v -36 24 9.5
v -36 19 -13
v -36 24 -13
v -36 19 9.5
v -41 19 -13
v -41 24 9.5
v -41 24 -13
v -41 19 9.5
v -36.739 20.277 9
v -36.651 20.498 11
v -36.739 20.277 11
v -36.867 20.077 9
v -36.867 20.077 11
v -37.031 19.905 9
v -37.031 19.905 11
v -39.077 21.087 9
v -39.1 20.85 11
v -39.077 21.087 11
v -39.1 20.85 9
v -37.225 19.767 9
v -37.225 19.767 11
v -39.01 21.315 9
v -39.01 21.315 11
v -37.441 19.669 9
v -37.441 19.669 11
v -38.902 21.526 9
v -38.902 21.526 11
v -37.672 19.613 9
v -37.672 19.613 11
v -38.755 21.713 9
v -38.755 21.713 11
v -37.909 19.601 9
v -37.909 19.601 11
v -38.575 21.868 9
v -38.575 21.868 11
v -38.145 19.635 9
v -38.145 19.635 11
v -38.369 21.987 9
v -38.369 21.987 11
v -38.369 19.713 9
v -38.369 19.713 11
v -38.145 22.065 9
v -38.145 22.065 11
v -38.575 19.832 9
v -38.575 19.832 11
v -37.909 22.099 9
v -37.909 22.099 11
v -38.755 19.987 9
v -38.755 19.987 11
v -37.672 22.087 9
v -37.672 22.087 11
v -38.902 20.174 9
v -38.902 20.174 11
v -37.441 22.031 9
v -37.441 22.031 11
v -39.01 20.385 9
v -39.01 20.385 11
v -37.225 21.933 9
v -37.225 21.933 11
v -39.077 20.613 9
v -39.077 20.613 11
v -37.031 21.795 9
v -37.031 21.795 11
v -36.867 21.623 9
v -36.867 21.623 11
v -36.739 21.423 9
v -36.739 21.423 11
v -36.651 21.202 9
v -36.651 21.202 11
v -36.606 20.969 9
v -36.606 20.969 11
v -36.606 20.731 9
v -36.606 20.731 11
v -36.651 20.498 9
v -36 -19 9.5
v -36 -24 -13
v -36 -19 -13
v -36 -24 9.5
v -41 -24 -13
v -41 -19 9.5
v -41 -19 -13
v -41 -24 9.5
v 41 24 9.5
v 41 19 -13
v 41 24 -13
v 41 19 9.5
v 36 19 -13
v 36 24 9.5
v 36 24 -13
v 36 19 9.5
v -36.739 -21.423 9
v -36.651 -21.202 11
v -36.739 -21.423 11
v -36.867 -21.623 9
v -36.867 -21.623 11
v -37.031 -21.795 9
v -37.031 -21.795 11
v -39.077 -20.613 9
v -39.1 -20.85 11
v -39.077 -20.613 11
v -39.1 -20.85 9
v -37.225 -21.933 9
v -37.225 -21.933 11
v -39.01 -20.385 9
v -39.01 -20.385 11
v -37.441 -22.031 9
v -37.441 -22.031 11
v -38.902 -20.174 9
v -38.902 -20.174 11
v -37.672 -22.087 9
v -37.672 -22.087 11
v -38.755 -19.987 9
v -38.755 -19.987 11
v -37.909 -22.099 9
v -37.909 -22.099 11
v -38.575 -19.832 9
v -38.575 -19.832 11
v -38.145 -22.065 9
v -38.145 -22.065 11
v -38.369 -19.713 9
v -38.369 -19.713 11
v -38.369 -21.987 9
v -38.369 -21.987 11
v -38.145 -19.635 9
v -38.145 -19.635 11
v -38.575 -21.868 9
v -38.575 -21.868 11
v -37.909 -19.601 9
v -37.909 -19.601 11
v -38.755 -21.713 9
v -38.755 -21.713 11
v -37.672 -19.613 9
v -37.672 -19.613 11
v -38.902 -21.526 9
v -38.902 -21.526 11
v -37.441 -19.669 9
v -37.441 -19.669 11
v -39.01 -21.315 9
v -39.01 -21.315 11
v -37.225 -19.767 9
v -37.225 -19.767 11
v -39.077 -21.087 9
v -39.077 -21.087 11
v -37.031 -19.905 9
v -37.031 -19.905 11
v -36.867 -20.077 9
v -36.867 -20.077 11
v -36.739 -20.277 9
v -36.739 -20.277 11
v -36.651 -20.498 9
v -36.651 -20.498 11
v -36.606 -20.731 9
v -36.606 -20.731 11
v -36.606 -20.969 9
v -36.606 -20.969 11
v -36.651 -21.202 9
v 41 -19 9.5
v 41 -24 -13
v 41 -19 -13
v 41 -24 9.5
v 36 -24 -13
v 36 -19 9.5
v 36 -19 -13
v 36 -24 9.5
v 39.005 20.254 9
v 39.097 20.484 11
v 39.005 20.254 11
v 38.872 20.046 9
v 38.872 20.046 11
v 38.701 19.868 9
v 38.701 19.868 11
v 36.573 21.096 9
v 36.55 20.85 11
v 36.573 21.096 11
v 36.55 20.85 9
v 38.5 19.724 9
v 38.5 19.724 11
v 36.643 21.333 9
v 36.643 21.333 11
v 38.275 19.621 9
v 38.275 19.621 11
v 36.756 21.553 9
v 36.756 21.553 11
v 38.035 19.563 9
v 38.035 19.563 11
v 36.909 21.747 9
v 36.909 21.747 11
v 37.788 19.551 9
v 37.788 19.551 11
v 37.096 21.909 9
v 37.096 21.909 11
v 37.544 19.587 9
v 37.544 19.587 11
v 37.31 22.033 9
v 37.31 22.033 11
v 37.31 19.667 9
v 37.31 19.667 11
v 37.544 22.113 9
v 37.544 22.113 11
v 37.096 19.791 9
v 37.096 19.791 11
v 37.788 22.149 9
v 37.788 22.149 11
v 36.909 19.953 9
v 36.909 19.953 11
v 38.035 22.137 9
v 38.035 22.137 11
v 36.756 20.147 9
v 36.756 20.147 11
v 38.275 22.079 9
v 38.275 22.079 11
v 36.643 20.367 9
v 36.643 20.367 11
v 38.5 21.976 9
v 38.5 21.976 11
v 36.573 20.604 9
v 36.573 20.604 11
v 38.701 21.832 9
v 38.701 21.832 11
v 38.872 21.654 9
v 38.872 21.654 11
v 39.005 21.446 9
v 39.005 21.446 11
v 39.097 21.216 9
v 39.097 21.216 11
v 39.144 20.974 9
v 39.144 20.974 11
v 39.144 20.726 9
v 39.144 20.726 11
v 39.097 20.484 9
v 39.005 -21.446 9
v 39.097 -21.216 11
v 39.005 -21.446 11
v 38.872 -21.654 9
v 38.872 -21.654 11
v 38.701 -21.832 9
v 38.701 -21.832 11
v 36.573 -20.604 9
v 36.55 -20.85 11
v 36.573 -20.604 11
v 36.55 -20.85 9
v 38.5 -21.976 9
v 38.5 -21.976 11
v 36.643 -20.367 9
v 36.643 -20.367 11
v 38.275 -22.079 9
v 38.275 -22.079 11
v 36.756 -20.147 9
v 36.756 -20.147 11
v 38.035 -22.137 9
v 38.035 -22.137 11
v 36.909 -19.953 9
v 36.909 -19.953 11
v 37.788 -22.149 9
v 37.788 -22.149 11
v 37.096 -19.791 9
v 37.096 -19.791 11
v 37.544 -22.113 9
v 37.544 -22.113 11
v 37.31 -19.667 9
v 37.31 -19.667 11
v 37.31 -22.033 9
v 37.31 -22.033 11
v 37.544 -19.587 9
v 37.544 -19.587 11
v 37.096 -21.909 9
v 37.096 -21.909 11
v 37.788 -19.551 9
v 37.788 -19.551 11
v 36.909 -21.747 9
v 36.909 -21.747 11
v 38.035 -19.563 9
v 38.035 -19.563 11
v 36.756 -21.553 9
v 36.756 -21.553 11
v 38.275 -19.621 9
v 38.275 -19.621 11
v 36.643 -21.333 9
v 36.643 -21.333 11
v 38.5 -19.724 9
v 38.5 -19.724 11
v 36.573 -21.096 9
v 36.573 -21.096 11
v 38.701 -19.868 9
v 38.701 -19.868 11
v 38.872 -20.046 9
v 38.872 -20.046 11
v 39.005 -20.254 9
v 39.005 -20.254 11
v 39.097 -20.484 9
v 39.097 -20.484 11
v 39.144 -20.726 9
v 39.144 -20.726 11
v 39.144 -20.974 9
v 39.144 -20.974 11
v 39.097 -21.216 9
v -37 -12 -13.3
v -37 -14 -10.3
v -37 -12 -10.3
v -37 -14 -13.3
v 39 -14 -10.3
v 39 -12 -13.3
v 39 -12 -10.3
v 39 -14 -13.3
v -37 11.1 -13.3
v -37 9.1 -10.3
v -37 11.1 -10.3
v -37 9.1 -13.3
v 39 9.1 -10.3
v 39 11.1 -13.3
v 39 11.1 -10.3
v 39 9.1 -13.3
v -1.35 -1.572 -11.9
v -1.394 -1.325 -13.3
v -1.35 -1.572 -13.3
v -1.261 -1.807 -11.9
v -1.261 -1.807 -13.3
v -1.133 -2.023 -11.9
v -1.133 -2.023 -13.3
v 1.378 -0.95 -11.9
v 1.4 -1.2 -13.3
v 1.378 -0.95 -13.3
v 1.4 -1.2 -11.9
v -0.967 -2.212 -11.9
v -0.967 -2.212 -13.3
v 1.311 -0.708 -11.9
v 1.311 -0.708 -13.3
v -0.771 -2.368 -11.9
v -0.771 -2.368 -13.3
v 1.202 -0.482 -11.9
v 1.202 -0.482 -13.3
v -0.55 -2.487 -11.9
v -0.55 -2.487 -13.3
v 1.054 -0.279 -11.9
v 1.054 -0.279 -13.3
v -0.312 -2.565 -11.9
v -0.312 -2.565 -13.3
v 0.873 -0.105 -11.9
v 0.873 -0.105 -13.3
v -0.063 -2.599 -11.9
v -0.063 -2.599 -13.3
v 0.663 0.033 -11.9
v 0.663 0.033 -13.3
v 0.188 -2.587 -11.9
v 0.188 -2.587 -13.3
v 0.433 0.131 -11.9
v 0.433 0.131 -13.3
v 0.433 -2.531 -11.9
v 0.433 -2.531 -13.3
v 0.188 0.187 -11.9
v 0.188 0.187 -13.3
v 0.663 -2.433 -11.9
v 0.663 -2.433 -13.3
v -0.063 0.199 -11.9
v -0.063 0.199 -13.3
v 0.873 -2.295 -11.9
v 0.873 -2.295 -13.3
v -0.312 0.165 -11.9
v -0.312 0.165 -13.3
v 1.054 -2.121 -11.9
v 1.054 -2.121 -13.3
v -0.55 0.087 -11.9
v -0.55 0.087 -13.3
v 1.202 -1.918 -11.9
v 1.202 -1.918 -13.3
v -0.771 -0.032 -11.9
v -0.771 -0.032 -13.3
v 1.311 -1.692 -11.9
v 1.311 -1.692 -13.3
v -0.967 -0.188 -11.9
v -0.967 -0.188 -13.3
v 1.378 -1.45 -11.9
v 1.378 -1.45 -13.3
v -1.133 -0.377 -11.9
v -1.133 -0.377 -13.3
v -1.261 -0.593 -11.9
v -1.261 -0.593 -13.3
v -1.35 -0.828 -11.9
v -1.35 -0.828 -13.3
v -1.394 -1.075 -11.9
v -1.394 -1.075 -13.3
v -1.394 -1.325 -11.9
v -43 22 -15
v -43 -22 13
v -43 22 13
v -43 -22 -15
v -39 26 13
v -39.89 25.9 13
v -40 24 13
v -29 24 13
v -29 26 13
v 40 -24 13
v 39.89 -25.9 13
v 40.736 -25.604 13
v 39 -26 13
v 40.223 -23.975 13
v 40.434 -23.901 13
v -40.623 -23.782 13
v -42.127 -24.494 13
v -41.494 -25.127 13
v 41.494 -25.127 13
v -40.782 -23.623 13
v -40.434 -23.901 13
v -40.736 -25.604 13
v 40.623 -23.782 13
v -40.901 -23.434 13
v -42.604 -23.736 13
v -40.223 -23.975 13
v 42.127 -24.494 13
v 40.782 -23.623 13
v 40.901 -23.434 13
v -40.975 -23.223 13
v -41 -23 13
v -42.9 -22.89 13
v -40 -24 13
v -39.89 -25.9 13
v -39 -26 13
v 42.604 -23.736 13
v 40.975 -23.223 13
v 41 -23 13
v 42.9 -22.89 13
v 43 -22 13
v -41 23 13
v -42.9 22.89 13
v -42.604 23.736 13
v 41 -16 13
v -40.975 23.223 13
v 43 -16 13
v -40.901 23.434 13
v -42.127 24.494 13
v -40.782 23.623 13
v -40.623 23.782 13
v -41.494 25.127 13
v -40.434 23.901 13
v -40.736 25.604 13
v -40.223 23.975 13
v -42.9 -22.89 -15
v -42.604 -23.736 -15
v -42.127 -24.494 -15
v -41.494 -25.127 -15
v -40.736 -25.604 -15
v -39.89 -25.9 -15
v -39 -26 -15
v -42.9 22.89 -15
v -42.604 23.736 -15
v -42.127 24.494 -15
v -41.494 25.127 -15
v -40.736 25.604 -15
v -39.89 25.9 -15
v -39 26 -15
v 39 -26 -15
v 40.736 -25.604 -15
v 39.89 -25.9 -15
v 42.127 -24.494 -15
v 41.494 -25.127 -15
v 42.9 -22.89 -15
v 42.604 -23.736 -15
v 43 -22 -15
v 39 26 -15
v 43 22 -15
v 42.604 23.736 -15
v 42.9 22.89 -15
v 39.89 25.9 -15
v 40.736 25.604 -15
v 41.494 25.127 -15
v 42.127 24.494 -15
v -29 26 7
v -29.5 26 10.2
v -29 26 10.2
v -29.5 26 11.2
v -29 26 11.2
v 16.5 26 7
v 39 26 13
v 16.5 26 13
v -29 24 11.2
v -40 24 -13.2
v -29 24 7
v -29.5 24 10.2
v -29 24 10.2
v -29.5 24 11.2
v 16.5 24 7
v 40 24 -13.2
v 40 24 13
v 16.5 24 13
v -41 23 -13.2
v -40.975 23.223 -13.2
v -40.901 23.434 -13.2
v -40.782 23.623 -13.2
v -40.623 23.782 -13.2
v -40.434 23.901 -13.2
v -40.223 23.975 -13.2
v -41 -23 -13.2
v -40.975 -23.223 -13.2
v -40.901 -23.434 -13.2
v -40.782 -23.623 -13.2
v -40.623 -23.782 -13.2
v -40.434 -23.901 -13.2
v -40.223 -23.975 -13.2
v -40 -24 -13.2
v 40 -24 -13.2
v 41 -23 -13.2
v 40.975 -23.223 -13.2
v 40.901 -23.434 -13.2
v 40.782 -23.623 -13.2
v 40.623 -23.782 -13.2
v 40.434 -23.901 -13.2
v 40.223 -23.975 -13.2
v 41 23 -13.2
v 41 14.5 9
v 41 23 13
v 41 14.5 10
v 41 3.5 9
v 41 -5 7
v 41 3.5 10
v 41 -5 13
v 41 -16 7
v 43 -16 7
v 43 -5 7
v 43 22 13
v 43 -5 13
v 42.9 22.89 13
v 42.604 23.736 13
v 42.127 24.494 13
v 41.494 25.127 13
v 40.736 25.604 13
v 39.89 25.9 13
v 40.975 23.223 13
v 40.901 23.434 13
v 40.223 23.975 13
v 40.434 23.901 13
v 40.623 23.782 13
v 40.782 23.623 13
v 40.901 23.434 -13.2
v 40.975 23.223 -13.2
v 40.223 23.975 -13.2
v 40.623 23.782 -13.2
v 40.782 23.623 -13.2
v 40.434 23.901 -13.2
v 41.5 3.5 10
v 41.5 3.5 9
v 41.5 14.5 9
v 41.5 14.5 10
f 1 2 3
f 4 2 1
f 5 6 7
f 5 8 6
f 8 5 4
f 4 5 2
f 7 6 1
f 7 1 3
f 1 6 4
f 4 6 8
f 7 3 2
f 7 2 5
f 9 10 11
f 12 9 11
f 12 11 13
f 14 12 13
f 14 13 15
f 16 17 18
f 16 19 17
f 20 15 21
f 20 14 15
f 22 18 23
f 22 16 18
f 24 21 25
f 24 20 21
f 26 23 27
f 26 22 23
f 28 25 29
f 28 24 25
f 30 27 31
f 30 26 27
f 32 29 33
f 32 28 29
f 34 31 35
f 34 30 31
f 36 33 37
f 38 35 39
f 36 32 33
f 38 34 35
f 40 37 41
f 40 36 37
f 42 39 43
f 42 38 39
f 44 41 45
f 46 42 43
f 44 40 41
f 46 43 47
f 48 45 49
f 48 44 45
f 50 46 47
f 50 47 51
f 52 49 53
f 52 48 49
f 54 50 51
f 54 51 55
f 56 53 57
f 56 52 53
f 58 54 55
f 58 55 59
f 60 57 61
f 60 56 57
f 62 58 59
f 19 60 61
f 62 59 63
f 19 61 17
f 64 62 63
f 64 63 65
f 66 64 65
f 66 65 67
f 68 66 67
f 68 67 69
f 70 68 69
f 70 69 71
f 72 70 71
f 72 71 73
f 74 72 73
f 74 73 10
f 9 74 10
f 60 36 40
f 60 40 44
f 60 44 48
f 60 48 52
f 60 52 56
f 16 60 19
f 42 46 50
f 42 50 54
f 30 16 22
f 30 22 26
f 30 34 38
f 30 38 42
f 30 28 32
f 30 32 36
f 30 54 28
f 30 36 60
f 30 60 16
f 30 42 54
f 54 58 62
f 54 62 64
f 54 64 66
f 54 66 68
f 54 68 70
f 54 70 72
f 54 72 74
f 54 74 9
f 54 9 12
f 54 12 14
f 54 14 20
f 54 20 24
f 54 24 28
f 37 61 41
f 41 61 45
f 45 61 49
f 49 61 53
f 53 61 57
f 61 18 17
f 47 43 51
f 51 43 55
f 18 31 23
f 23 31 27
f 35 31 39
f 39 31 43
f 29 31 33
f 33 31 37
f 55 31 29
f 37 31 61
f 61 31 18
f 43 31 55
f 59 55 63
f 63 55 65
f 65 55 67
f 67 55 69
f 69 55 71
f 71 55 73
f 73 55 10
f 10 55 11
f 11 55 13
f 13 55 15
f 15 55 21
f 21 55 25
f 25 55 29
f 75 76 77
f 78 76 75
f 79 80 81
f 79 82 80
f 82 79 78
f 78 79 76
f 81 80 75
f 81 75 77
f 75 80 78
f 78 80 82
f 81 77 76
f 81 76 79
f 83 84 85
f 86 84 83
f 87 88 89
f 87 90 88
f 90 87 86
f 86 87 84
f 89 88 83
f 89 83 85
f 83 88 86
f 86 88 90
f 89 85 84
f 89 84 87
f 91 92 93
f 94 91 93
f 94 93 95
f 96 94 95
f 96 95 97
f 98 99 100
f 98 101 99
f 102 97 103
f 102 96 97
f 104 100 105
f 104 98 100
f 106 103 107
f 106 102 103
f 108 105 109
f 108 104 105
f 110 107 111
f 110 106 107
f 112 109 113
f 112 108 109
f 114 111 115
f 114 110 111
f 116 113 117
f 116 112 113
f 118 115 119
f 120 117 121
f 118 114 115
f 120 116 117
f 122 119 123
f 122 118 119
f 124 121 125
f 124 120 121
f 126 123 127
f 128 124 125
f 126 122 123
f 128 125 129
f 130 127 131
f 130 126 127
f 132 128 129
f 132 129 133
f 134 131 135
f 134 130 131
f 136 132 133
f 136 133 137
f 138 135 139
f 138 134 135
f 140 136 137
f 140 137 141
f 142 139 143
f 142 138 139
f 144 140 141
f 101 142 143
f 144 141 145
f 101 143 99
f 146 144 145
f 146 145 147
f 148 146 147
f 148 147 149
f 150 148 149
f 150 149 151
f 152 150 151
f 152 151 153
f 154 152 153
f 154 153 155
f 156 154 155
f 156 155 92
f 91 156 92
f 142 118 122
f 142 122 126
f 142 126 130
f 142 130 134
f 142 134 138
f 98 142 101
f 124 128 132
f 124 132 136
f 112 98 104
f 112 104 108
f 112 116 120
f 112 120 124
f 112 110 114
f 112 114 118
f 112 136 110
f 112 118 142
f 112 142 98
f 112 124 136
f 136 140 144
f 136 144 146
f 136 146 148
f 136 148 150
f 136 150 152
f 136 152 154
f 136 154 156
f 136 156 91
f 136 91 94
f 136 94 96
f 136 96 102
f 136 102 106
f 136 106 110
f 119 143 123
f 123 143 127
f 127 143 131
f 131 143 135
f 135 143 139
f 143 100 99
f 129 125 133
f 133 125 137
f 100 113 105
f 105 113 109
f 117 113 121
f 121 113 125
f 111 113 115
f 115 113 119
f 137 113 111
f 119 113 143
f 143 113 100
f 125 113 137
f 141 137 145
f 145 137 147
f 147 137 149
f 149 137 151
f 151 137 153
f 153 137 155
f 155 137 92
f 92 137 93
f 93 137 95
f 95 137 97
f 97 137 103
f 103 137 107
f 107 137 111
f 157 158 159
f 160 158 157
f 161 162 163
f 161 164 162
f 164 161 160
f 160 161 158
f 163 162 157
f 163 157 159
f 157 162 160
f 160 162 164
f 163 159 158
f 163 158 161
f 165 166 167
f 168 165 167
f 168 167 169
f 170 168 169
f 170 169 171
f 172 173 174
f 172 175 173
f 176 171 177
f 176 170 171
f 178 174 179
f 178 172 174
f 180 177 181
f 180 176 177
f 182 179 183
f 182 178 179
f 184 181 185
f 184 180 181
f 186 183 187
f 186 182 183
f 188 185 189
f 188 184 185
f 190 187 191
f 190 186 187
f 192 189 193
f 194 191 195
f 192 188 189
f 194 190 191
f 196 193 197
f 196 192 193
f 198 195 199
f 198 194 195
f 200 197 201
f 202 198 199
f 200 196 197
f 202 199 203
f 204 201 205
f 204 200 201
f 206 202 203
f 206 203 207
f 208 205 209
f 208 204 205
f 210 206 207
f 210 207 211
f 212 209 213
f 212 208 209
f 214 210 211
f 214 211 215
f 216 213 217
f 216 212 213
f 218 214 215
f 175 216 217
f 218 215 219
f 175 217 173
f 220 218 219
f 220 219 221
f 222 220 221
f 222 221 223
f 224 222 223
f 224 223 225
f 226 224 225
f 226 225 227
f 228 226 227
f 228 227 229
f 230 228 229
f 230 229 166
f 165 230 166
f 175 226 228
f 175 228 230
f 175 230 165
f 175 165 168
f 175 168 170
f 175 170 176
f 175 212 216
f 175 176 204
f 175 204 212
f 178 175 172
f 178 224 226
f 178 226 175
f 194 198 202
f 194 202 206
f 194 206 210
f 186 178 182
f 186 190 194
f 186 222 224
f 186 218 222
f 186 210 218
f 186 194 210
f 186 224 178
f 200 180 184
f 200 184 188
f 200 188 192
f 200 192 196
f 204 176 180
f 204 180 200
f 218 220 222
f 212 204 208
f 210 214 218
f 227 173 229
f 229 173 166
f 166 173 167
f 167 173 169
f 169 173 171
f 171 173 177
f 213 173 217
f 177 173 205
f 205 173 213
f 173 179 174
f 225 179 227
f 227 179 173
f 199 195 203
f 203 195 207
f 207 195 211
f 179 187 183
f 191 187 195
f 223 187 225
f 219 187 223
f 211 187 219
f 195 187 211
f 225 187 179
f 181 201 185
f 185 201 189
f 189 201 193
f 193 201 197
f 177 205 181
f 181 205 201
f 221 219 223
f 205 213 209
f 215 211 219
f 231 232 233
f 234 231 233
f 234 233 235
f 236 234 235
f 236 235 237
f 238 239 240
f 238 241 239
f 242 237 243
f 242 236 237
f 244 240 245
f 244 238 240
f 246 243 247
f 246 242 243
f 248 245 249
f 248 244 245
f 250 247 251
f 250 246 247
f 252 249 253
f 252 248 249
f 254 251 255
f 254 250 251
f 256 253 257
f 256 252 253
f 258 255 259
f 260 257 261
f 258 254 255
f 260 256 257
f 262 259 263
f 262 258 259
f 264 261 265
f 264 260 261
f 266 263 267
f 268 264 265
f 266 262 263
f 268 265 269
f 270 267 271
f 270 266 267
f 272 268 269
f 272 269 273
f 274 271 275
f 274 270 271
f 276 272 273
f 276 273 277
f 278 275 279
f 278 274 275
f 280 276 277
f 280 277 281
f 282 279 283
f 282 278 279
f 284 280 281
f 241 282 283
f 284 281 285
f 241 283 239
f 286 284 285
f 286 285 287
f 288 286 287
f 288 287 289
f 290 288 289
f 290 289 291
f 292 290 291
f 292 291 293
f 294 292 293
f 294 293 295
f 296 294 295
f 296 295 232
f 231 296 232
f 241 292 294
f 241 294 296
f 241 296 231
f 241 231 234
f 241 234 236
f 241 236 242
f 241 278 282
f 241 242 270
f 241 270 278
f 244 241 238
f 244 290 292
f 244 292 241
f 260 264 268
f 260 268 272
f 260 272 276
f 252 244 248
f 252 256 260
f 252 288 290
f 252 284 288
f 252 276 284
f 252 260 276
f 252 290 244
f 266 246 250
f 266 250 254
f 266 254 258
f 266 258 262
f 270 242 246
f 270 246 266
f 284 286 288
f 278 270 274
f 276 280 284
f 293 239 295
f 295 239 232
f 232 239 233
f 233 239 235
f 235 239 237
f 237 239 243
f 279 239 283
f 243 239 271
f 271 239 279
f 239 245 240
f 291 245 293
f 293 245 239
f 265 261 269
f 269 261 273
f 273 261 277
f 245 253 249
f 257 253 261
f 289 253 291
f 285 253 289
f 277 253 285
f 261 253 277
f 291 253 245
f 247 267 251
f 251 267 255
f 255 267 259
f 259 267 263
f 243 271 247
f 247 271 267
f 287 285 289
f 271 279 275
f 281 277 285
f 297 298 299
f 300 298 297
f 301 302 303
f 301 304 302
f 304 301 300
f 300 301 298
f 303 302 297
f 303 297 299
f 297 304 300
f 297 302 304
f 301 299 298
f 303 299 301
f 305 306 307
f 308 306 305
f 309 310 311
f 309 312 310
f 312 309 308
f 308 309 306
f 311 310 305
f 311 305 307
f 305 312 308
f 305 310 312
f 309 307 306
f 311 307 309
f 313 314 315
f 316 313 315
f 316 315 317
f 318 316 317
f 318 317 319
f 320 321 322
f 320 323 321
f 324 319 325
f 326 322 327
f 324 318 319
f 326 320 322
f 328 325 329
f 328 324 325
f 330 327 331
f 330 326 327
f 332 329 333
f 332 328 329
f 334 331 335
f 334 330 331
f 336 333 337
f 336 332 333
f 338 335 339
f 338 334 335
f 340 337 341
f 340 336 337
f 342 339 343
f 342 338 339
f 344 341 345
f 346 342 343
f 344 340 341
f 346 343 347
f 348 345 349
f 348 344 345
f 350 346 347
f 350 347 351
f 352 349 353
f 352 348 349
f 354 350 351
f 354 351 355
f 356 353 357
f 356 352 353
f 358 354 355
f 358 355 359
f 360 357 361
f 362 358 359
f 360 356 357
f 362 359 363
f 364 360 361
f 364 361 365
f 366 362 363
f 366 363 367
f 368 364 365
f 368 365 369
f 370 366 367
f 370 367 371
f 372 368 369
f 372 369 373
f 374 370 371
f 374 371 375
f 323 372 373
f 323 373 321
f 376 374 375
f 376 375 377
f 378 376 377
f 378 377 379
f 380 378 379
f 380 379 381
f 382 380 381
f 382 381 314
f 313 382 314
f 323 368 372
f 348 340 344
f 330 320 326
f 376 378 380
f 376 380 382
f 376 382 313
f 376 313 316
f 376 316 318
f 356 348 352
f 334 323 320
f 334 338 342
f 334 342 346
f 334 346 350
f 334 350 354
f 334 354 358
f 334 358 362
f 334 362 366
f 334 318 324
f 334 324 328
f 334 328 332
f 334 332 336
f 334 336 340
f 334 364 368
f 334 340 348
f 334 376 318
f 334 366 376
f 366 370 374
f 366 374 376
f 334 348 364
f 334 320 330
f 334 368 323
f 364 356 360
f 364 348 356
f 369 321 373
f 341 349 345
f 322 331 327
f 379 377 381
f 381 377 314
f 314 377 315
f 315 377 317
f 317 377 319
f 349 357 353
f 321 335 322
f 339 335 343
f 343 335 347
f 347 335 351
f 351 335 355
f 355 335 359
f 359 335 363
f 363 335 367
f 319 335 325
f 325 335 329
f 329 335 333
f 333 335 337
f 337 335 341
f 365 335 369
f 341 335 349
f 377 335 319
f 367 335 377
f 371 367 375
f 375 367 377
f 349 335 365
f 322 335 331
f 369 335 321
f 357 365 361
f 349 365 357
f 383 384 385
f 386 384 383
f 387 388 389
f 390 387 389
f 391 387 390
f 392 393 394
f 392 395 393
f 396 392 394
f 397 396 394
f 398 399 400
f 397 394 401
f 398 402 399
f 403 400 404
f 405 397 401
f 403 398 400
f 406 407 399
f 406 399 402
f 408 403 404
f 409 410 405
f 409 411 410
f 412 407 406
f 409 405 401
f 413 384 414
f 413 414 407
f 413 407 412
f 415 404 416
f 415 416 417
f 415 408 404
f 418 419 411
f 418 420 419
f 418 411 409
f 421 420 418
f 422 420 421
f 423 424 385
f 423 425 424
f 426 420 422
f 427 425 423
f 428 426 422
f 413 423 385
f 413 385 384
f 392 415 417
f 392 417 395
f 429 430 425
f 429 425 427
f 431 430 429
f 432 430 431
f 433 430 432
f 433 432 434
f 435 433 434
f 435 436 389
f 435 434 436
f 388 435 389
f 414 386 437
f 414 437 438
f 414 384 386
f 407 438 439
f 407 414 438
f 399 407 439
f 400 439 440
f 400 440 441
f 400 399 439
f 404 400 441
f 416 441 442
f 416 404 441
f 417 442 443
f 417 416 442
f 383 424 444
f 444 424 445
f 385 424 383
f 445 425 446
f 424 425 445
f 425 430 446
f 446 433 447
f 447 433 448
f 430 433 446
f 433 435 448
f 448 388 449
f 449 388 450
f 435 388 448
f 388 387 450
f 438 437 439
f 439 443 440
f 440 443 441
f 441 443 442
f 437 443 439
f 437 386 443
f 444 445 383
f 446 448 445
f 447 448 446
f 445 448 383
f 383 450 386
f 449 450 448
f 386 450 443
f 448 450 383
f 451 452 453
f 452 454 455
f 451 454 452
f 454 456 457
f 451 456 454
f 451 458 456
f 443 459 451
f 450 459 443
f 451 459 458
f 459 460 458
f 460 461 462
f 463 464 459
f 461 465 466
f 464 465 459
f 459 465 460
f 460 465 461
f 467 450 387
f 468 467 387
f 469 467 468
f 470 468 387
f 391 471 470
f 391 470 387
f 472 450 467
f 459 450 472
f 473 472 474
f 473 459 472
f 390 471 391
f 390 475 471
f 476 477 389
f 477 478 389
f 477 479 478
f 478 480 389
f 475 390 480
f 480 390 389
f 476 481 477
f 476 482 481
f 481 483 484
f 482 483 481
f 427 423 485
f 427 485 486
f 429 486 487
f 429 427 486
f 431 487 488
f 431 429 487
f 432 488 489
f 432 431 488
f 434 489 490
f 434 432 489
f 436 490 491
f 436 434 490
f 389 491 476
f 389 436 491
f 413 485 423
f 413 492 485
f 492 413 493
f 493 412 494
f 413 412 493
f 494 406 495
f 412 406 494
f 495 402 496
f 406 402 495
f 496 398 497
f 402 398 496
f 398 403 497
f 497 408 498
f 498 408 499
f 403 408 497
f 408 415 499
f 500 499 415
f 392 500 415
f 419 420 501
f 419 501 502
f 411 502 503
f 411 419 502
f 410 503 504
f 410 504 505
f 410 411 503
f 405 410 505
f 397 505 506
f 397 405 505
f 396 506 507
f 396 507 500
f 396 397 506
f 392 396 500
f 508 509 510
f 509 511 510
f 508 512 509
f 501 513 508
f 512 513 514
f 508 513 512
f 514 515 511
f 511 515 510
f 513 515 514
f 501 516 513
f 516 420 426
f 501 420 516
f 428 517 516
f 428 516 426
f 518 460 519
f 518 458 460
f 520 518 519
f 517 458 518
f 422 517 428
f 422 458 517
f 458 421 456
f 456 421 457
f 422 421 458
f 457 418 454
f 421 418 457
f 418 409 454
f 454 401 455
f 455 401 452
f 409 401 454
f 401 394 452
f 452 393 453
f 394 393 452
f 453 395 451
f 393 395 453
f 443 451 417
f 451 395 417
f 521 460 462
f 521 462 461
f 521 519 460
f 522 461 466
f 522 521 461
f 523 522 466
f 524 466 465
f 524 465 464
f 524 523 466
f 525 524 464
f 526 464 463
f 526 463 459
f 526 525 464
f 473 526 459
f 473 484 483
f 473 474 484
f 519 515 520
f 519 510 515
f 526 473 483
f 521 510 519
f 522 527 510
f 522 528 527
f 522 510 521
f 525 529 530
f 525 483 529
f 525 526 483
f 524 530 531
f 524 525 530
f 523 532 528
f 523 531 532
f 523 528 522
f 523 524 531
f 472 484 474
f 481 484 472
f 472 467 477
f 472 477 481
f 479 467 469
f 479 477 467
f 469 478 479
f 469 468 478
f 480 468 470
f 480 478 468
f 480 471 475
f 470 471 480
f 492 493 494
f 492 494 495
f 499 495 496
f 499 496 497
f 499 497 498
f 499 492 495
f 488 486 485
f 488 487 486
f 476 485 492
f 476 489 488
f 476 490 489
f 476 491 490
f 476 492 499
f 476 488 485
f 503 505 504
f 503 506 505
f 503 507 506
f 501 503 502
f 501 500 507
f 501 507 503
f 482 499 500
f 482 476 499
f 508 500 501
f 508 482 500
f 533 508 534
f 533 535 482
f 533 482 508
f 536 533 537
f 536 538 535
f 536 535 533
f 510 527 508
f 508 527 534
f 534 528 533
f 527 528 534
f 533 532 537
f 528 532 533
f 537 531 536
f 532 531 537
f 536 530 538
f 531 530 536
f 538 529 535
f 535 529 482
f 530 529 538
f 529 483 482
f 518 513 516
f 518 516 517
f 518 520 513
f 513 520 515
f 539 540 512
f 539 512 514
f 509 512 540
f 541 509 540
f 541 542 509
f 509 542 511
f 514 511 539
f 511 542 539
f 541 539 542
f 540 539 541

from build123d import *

# Parameters (mm, degrees)
BOX004_W          = 5
BOX004_H          = 5
BOX004_DEPTH      = 22.5
CYLINDER_R        = 1.25
CYLINDER_DEPTH    = 2
BOX006_W          = 5
BOX006_H          = 5
BOX006_DEPTH      = 22.5
BOX005_W          = 5
BOX005_H          = 5
BOX005_DEPTH      = 22.5
CYLINDER001_R     = 1.25
CYLINDER001_DEPTH = 2
BOX007_W          = 5
BOX007_H          = 5
BOX007_DEPTH      = 22.5
CYLINDER002_R     = 1.3
CYLINDER002_DEPTH = 2
CYLINDER003_R     = 1.3
CYLINDER003_DEPTH = 2
CYLINDER004_R     = 1.4
CYLINDER004_DEPTH = 1.4
BOX021_W          = 76
BOX021_H          = 2
BOX021_DEPTH      = 3
BOX020_W          = 76
BOX020_H          = 2
BOX020_DEPTH      = 3
BOX016_W          = 0.5
BOX016_H          = 11
BOX016_DEPTH      = 1
BOX015_W          = 2
BOX015_H          = 11
BOX015_DEPTH      = 6
BOX019_W          = 1
BOX019_H          = 2
BOX019_DEPTH      = 1
BOX014_W          = 45.5
BOX014_H          = 2
BOX014_DEPTH      = 6
BOX018_W          = 82
BOX018_H          = 48
BOX018_DEPTH      = 28
FILLET010_R       = 1
BOX017_W          = 86
BOX017_H          = 52
BOX017_DEPTH      = 28
FILLET009_R       = 4


with BuildPart() as column1:
    # Box004 → Box004 (new body)
    with BuildSketch(Plane(origin=(-36, 19, 9.5), x_dir=(-1, 0, 0), z_dir=(0, 0, -1))):
        with Locations((2.5, 2.5)):
            Rectangle(BOX004_W, BOX004_H)
    extrude(amount=BOX004_DEPTH)


with BuildPart() as cylinder:
    # Cylinder → Cylinder (new body)
    with BuildSketch(Plane(origin=(-37.85, 20.85, 11), x_dir=(-1, 0, 0), z_dir=(0, 0, -1))):
        Circle(CYLINDER_R)
    extrude(amount=CYLINDER_DEPTH)


with BuildPart() as column3:
    # Box006 → Box006 (new body)
    with BuildSketch(Plane(origin=(-36, -24, 9.5), x_dir=(-1, 0, 0), z_dir=(0, 0, -1))):
        with Locations((2.5, 2.5)):
            Rectangle(BOX006_W, BOX006_H)
    extrude(amount=BOX006_DEPTH)


with BuildPart() as column2:
    # Box005 → Box005 (new body)
    with BuildSketch(Plane(origin=(41, 19, 9.5), x_dir=(-1, 0, 0), z_dir=(0, 0, -1))):
        with Locations((2.5, 2.5)):
            Rectangle(BOX005_W, BOX005_H)
    extrude(amount=BOX005_DEPTH)


with BuildPart() as cylinder001:
    # Cylinder001 → Cylinder001 (new body)
    with BuildSketch(Plane(origin=(-37.85, -20.85, 11), x_dir=(-1, 0, 0), z_dir=(0, 0, -1))):
        Circle(CYLINDER001_R)
    extrude(amount=CYLINDER001_DEPTH)


with BuildPart() as column4:
    # Box007 → Box007 (new body)
    with BuildSketch(Plane(origin=(41, -24, 9.5), x_dir=(-1, 0, 0), z_dir=(0, 0, -1))):
        with Locations((2.5, 2.5)):
            Rectangle(BOX007_W, BOX007_H)
    extrude(amount=BOX007_DEPTH)


with BuildPart() as cylinder002:
    # Cylinder002 → Cylinder002 (new body)
    with BuildSketch(Plane(origin=(37.85, 20.85, 11), x_dir=(-1, 0, 0), z_dir=(0, 0, -1))):
        Circle(CYLINDER002_R)
    extrude(amount=CYLINDER002_DEPTH)


with BuildPart() as cylinder003:
    # Cylinder003 → Cylinder003 (new body)
    with BuildSketch(Plane(origin=(37.85, -20.85, 11), x_dir=(-1, 0, 0), z_dir=(0, 0, -1))):
        Circle(CYLINDER003_R)
    extrude(amount=CYLINDER003_DEPTH)


with BuildPart() as zylinder:
    # Cylinder004 → Cylinder004 (new body)
    with BuildSketch(Plane(origin=(0, -1.2, -13.3), x_dir=(1, 0, 0), z_dir=(0, 0, 1))):
        Circle(CYLINDER004_R)
    extrude(amount=CYLINDER004_DEPTH)


with BuildPart() as w_rfel010:
    # Box021 → Box021 (new body)
    with BuildSketch(Plane(origin=(-37, 9.1, -13.3), x_dir=(1, 0, 0), z_dir=(0, 0, 1))):
        with Locations((38, 1)):
            Rectangle(BOX021_W, BOX021_H)
    extrude(amount=BOX021_DEPTH)


with BuildPart() as w_rfel009:
    # Box020 → Box020 (new body)
    with BuildSketch(Plane(origin=(-37, -14, -13.3), x_dir=(1, 0, 0), z_dir=(0, 0, 1))):
        with Locations((38, 1)):
            Rectangle(BOX020_W, BOX020_H)
    extrude(amount=BOX020_DEPTH)


with BuildPart() as cliphole001:
    # Box016 → Box016 (new body)
    with BuildSketch(Plane(origin=(41, 3.5, 9), x_dir=(1, 0, 0), z_dir=(0, 0, 1))):
        with Locations((0.25, 5.5)):
            Rectangle(BOX016_W, BOX016_H)
    extrude(amount=BOX016_DEPTH)


with BuildPart() as usb_cut001:
    # Box015 → Box015 (new body)
    with BuildSketch(Plane(origin=(41, -16, 7), x_dir=(1, 0, 0), z_dir=(0, 0, 1))):
        with Locations((1, 5.5)):
            Rectangle(BOX015_W, BOX015_H)
    extrude(amount=BOX015_DEPTH)


with BuildPart() as lidholder:
    # Box019 → Box019 (new body)
    with BuildSketch(Plane(origin=(-29.5, 24, 10.2), x_dir=(1, 0, 0), z_dir=(0, 0, 1))):
        with Locations((0.5, 1)):
            Rectangle(BOX019_W, BOX019_H)
    extrude(amount=BOX019_DEPTH)


with BuildPart() as fusion:
    # Box014 → Box014 (new body)
    with BuildSketch(Plane(origin=(-29, 24, 7), x_dir=(1, 0, 0), z_dir=(0, 0, 1))):
        with Locations((22.75, 1)):
            Rectangle(BOX014_W, BOX014_H)
    extrude(amount=BOX014_DEPTH)

    # Fusion: union LidHolder
    add(lidholder.part)


with BuildPart() as fillet010:
    # Box018 → Box018 (new body)
    with BuildSketch(Plane(origin=(-41, -24, -15), x_dir=(1, 0, 0), z_dir=(0, 0, 1))):
        with Locations((41, 24)):
            Rectangle(BOX018_W, BOX018_H)
    extrude(amount=BOX018_DEPTH)

    # Fillet010
    fillet010_edges = [fillet010.edges().sort_by_distance(p)[0] for p in [
        (-41, -24, -1),
        (-41, 24, -1),
        (41, -24, -1),
        (41, 24, -1),
    ]]
    fillet(fillet010_edges, radius=FILLET010_R)


with BuildPart() as fillet010_1:
    # Fillet010 placement: moved
    add(fillet010.part.moved(Location((0, 0, 1.8))))


with BuildPart() as cut013:
    # Box017 → Box017 (new body)
    with BuildSketch(Plane(origin=(-43, -26, -15), x_dir=(1, 0, 0), z_dir=(0, 0, 1))):
        with Locations((43, 26)):
            Rectangle(BOX017_W, BOX017_H)
    extrude(amount=BOX017_DEPTH)

    # Fillet009
    fillet009_edges = [cut013.edges().sort_by_distance(p)[0] for p in [
        (-43, -26, -1),
        (-43, 26, -1),
        (43, -26, -1),
        (43, 26, -1),
    ]]
    fillet(fillet009_edges, radius=FILLET009_R)

    # Cut011: cut Fillet010
    add(fillet010_1.part, mode=Mode.SUBTRACT)

    # Cut: cut Fusion
    add(fusion.part, mode=Mode.SUBTRACT)

    # Cut012: cut USB Cut001
    add(usb_cut001.part, mode=Mode.SUBTRACT)

    # Cut013: cut Cliphole001
    add(cliphole001.part, mode=Mode.SUBTRACT)


solid = Compound([column1.part, cylinder.part, column3.part, column2.part, cylinder001.part, column4.part, cylinder002.part, cylinder003.part, zylinder.part, w_rfel010.part, w_rfel009.part, cut013.part])
